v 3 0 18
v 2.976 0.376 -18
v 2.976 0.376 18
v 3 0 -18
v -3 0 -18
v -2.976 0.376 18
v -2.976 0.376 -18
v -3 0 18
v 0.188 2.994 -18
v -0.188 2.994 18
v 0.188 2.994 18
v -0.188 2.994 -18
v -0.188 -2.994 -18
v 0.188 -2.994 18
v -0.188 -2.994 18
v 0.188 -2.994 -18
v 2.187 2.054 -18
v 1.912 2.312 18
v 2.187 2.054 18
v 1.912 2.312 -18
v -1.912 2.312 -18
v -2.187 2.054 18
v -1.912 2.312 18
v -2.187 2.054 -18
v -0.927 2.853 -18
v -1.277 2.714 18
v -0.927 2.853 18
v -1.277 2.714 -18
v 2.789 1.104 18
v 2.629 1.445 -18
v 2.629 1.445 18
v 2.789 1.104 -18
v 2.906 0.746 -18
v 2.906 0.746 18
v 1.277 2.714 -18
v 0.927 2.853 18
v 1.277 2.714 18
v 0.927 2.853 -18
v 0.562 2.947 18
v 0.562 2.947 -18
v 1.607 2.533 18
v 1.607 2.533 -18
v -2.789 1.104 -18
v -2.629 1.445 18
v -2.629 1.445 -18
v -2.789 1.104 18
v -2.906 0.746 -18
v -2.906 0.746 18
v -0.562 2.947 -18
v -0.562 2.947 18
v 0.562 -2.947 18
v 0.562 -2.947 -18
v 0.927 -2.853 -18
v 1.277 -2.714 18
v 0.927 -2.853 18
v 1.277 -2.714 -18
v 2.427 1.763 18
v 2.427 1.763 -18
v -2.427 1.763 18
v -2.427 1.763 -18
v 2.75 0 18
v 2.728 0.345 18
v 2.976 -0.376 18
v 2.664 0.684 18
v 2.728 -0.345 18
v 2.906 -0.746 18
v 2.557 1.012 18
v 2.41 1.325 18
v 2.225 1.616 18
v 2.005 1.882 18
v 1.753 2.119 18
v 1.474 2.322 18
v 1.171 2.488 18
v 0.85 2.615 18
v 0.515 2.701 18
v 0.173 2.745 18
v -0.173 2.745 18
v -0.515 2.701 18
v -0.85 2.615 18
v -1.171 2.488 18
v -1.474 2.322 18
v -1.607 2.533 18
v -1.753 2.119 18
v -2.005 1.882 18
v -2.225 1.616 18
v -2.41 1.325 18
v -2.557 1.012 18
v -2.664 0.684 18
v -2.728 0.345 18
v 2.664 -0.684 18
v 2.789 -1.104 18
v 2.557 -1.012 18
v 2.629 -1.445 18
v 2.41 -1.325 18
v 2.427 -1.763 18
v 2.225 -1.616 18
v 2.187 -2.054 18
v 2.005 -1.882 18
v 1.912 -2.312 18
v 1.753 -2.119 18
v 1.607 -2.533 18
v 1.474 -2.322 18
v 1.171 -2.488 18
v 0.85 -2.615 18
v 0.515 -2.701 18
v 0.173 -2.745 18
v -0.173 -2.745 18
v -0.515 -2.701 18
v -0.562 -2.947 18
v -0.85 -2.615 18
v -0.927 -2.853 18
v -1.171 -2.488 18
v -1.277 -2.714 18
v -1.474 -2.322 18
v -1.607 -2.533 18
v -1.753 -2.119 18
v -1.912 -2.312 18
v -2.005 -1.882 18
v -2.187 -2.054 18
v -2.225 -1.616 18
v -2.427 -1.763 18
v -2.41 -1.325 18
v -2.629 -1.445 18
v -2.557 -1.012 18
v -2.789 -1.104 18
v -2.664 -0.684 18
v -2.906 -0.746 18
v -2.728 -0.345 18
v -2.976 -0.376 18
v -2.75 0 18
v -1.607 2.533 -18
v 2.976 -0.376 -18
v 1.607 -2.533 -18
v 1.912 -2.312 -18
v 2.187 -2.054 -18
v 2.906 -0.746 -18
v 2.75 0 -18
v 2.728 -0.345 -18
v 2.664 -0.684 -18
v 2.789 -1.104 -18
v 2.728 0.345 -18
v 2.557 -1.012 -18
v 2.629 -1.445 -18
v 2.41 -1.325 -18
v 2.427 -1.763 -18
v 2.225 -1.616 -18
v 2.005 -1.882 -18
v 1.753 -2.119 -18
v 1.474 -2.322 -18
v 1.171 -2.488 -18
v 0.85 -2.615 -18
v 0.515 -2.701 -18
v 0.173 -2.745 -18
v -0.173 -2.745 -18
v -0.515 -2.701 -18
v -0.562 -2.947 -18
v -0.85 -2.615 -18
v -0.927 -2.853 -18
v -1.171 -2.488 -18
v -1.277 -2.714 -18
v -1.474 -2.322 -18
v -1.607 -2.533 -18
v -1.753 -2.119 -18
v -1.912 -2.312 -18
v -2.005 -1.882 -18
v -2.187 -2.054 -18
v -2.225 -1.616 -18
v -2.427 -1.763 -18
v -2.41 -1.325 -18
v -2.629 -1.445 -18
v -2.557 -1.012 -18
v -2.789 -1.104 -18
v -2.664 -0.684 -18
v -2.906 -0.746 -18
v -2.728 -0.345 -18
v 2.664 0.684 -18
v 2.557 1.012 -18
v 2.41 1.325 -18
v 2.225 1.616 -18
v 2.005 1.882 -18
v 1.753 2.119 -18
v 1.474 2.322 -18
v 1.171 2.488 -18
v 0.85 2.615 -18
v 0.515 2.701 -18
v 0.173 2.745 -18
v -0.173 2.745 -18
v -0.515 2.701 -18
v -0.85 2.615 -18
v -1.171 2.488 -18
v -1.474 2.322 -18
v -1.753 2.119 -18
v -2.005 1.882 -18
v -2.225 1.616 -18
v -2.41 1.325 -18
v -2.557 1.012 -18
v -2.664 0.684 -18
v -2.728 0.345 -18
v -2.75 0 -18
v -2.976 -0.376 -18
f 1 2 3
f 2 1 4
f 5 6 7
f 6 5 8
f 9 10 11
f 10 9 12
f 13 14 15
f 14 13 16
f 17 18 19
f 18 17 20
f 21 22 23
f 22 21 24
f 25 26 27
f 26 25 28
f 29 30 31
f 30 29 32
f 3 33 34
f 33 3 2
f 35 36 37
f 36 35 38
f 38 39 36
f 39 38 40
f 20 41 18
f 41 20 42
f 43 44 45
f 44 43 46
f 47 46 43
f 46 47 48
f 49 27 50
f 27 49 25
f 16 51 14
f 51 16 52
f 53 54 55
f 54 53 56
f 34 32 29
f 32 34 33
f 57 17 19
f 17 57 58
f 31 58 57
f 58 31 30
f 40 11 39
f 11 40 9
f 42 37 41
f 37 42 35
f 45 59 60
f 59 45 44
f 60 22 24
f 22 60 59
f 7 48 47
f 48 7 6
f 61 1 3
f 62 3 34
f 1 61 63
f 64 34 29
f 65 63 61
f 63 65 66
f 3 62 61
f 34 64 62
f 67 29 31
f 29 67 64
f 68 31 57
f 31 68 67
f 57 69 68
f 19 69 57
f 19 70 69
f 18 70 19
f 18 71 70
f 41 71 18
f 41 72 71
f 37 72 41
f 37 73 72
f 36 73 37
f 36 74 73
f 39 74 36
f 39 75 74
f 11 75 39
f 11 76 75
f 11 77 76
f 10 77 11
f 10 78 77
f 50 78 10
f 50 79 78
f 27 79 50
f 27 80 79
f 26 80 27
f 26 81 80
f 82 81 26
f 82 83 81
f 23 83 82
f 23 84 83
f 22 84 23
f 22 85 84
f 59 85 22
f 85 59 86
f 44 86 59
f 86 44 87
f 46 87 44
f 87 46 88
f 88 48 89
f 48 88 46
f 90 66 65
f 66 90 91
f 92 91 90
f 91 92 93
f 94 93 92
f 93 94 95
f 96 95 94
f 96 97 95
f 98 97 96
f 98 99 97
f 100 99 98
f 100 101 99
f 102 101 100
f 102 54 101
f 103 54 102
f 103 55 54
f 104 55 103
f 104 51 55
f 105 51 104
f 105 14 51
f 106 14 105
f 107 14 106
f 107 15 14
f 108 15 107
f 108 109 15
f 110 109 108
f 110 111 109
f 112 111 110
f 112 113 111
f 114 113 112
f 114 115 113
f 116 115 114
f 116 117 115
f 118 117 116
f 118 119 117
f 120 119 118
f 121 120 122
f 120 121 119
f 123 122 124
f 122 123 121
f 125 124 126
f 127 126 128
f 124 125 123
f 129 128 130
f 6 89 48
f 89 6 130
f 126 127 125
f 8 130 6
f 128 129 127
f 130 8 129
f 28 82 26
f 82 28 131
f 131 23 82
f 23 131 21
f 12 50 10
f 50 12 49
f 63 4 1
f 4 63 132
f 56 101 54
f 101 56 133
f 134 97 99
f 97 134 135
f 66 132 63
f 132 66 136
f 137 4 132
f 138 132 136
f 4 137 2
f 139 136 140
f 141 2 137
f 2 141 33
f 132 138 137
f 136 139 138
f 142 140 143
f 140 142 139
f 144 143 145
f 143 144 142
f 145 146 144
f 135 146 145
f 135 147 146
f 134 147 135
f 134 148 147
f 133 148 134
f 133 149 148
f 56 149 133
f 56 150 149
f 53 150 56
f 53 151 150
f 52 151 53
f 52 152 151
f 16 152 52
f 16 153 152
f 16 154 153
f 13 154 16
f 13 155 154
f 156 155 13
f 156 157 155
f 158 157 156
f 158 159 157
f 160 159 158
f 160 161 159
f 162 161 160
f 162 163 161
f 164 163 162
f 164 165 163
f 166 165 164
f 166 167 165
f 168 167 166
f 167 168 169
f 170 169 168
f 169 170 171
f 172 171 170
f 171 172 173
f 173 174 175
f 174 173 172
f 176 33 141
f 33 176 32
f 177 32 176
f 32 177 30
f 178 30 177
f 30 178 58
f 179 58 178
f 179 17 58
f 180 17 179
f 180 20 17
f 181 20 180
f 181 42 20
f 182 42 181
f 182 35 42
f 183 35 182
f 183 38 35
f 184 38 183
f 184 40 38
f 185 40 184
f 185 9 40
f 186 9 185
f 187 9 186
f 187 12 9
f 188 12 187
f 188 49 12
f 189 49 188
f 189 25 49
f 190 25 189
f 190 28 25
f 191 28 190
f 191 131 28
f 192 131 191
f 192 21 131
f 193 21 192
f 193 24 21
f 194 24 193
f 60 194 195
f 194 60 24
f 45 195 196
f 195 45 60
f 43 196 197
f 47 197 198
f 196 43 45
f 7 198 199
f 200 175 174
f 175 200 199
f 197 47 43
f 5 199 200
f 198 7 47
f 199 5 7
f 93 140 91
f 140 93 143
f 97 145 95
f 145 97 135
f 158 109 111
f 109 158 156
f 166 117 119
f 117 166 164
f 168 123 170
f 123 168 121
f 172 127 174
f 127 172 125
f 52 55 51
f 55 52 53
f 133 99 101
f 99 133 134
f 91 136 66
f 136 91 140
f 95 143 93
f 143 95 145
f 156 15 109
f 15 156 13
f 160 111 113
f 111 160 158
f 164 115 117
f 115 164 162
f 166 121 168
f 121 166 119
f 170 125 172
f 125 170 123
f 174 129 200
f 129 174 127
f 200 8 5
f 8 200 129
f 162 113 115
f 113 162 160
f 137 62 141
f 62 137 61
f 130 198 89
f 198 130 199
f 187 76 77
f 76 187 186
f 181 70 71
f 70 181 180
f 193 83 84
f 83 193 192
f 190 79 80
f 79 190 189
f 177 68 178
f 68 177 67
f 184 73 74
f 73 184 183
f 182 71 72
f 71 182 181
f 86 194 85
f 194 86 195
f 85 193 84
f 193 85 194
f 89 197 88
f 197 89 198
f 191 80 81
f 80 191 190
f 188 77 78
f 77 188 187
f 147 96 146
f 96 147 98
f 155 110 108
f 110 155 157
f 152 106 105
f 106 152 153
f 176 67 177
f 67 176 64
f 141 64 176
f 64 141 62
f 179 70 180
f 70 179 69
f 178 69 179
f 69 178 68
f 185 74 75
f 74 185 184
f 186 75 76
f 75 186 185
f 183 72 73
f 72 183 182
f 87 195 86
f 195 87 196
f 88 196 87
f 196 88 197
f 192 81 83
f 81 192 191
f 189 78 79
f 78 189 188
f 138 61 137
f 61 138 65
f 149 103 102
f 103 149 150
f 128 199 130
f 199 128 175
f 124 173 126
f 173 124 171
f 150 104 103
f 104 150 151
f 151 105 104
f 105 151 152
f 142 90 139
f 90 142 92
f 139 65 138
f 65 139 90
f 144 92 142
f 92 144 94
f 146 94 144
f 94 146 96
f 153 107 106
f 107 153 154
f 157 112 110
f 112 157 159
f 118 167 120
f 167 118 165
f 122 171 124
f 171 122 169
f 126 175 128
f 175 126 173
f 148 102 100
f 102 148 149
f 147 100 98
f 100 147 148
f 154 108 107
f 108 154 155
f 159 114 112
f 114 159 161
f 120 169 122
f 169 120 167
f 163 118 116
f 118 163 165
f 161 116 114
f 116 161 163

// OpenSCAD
$fn = 50;


difference() {
	union() {
		translate(v = [0, 0, -18.0000000000]) {
			cylinder(h = 36, r = 3.0000000000);
		}
	}
	union() {
		translate(v = [0, 0, -100.0000000000]) {
			cylinder(h = 200, r = 2.7500000000);
		}
	}
}
